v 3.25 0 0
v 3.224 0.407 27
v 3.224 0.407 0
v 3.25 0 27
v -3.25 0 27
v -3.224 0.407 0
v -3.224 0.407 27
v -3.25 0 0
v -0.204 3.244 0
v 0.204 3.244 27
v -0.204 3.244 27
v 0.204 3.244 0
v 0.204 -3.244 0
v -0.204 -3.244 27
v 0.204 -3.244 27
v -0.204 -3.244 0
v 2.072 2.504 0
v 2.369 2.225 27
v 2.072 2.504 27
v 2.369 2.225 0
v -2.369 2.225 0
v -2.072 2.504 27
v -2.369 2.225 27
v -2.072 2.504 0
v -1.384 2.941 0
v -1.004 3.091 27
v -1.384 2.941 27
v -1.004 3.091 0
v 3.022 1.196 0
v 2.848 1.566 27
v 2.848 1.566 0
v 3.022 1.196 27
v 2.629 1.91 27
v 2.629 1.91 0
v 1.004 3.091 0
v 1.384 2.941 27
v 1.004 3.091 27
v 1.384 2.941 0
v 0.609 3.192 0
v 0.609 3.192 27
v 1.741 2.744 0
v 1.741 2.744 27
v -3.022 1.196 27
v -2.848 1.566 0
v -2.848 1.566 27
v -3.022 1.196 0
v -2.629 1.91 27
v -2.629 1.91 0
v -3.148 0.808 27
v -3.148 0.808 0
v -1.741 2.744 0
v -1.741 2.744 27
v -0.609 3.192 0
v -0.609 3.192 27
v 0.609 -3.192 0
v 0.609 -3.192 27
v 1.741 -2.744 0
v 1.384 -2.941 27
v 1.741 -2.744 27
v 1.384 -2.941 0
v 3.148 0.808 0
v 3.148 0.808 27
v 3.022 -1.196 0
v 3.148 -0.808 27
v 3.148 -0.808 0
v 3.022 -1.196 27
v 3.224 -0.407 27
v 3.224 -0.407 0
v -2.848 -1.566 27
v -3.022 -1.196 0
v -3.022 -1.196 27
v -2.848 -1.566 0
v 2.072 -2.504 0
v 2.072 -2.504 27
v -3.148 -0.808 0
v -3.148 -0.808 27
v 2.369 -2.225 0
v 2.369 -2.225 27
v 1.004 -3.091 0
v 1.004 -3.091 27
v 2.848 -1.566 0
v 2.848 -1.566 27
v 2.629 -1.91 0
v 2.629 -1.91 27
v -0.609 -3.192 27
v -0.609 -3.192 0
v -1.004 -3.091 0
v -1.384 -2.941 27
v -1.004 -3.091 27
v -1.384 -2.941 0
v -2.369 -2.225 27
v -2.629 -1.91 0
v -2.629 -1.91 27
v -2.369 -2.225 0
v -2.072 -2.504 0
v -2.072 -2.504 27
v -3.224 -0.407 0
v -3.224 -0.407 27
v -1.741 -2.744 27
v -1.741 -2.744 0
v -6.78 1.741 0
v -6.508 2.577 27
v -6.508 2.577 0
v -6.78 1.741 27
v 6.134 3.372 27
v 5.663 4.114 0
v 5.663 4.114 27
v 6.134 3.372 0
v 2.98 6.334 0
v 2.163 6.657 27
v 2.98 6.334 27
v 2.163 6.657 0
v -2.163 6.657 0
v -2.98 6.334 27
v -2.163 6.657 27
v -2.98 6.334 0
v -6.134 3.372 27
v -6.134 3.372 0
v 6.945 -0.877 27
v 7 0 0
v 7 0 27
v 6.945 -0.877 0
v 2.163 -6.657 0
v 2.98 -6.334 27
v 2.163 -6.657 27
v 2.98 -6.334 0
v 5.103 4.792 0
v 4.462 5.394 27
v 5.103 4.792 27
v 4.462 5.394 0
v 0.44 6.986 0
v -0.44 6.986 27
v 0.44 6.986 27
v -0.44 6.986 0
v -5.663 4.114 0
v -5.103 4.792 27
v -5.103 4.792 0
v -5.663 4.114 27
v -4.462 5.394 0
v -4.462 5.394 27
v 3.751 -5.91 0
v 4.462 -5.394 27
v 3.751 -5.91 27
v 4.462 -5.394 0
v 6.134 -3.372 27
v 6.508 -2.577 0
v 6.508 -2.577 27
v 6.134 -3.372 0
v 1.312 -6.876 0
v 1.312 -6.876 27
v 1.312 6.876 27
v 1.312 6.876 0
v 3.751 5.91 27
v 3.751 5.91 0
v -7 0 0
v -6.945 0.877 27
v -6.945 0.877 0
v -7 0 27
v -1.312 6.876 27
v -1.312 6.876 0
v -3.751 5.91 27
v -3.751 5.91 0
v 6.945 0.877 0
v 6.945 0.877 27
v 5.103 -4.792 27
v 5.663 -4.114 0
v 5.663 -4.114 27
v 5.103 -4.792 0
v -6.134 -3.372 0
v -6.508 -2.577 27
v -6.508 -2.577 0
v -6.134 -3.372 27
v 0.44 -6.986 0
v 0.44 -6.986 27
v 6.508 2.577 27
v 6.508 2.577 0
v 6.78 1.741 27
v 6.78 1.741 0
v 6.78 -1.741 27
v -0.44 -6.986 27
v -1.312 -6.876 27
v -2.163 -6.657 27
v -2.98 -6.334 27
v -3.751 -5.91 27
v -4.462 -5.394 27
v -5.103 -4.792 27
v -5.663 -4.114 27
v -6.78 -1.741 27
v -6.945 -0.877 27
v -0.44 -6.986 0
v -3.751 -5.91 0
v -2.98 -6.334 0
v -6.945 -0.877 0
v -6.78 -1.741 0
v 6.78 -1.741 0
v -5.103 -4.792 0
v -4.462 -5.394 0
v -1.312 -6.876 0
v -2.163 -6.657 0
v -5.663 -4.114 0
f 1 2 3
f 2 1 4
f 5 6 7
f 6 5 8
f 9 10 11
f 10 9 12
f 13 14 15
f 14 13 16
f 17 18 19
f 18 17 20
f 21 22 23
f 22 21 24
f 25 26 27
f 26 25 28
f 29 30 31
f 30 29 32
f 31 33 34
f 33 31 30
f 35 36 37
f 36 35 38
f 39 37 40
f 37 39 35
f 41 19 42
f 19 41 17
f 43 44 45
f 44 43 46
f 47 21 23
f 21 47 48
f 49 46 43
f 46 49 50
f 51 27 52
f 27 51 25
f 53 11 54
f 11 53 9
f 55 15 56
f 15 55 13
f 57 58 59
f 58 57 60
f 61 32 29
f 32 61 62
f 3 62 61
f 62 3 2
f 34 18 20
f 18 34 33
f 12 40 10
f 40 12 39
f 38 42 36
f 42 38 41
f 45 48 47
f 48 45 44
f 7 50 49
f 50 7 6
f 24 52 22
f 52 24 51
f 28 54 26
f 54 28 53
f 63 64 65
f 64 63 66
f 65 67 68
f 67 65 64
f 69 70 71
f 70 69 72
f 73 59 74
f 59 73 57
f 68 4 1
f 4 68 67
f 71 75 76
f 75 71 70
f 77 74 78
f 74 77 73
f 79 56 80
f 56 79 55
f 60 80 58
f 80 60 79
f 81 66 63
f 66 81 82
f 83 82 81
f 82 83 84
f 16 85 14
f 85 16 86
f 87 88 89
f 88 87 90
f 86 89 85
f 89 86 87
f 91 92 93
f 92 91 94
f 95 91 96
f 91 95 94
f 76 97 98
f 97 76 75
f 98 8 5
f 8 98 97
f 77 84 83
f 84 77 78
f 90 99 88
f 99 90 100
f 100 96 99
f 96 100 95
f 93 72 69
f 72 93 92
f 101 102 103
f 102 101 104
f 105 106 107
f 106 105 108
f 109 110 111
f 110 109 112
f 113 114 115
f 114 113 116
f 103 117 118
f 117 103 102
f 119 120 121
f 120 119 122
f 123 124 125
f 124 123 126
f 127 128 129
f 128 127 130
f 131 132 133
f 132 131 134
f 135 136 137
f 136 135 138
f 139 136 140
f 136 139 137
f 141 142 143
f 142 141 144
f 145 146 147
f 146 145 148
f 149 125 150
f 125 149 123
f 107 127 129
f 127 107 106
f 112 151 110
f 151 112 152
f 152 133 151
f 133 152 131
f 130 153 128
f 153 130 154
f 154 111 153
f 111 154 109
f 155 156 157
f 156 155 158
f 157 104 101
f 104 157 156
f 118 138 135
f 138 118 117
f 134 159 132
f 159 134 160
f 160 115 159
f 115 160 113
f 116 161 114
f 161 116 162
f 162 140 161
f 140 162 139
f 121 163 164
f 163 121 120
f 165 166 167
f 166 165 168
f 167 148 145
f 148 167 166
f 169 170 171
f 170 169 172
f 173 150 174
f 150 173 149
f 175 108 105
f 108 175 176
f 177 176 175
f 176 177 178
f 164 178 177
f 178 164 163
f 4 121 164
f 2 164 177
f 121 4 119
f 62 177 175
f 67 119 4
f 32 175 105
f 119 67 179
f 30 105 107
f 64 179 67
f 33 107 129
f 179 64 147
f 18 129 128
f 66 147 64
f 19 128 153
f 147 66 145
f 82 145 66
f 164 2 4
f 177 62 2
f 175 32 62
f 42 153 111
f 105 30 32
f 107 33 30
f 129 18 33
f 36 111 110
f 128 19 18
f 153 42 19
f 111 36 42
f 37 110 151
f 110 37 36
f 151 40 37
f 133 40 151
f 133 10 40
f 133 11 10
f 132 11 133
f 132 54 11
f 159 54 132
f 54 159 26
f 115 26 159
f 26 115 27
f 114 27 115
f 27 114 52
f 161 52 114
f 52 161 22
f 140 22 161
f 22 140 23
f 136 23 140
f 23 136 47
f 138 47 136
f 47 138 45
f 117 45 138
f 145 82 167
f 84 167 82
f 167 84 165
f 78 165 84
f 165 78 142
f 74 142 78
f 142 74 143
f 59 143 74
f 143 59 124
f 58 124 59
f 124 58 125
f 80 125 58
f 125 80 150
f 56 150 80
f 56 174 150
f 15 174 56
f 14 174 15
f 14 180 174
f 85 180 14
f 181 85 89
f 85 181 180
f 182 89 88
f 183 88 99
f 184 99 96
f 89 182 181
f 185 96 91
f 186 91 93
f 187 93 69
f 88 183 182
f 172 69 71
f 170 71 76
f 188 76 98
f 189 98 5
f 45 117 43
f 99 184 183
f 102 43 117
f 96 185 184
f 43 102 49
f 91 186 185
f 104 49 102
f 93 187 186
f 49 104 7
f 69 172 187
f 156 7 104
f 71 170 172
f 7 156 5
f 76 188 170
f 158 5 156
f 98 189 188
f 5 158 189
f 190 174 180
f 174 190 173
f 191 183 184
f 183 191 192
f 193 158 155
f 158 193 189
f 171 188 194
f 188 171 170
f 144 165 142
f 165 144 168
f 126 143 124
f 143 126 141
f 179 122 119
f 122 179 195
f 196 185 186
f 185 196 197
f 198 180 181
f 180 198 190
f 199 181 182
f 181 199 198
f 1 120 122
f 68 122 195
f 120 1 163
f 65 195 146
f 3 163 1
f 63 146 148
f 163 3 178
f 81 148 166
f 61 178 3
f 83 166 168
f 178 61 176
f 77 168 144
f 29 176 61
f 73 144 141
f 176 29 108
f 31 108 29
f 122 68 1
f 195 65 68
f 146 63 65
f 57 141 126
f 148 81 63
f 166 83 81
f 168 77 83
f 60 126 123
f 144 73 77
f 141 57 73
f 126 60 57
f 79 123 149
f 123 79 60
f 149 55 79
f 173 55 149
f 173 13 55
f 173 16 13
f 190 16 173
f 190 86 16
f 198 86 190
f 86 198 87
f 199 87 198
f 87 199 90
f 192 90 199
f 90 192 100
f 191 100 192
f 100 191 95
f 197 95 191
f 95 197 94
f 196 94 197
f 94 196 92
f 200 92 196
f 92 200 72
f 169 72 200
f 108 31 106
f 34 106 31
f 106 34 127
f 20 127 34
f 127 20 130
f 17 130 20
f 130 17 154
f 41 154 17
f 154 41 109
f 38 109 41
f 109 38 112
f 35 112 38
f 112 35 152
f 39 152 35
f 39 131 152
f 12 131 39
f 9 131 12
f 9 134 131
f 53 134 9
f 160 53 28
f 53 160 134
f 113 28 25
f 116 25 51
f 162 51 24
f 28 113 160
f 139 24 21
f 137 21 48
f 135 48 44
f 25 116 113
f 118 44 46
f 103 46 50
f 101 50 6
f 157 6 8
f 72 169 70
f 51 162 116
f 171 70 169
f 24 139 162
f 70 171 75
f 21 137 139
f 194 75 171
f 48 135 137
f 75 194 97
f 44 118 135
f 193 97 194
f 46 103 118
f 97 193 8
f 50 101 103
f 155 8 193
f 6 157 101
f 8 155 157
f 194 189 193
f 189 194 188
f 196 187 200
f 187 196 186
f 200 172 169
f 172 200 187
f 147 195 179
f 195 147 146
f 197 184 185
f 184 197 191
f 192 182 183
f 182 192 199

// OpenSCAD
$fn = 50;


difference() {
	union() {
		cylinder(h = 27, r = 7.0000000000);
	}
	union() {
		cylinder(h = 27, r = 3.2500000000);
		cylinder(h = 27, r = 3.2500000000);
		cylinder(h = 27, r = 1.8000000000);
		cylinder(h = 27, r = 1.8000000000);
		cylinder(h = 27, r = 1.8000000000);
		cylinder(h = 27, r = 1.8000000000);
		cylinder(h = 27, r = 1.8000000000);
		cylinder(h = 27, r = 1.8000000000);
	}
}
